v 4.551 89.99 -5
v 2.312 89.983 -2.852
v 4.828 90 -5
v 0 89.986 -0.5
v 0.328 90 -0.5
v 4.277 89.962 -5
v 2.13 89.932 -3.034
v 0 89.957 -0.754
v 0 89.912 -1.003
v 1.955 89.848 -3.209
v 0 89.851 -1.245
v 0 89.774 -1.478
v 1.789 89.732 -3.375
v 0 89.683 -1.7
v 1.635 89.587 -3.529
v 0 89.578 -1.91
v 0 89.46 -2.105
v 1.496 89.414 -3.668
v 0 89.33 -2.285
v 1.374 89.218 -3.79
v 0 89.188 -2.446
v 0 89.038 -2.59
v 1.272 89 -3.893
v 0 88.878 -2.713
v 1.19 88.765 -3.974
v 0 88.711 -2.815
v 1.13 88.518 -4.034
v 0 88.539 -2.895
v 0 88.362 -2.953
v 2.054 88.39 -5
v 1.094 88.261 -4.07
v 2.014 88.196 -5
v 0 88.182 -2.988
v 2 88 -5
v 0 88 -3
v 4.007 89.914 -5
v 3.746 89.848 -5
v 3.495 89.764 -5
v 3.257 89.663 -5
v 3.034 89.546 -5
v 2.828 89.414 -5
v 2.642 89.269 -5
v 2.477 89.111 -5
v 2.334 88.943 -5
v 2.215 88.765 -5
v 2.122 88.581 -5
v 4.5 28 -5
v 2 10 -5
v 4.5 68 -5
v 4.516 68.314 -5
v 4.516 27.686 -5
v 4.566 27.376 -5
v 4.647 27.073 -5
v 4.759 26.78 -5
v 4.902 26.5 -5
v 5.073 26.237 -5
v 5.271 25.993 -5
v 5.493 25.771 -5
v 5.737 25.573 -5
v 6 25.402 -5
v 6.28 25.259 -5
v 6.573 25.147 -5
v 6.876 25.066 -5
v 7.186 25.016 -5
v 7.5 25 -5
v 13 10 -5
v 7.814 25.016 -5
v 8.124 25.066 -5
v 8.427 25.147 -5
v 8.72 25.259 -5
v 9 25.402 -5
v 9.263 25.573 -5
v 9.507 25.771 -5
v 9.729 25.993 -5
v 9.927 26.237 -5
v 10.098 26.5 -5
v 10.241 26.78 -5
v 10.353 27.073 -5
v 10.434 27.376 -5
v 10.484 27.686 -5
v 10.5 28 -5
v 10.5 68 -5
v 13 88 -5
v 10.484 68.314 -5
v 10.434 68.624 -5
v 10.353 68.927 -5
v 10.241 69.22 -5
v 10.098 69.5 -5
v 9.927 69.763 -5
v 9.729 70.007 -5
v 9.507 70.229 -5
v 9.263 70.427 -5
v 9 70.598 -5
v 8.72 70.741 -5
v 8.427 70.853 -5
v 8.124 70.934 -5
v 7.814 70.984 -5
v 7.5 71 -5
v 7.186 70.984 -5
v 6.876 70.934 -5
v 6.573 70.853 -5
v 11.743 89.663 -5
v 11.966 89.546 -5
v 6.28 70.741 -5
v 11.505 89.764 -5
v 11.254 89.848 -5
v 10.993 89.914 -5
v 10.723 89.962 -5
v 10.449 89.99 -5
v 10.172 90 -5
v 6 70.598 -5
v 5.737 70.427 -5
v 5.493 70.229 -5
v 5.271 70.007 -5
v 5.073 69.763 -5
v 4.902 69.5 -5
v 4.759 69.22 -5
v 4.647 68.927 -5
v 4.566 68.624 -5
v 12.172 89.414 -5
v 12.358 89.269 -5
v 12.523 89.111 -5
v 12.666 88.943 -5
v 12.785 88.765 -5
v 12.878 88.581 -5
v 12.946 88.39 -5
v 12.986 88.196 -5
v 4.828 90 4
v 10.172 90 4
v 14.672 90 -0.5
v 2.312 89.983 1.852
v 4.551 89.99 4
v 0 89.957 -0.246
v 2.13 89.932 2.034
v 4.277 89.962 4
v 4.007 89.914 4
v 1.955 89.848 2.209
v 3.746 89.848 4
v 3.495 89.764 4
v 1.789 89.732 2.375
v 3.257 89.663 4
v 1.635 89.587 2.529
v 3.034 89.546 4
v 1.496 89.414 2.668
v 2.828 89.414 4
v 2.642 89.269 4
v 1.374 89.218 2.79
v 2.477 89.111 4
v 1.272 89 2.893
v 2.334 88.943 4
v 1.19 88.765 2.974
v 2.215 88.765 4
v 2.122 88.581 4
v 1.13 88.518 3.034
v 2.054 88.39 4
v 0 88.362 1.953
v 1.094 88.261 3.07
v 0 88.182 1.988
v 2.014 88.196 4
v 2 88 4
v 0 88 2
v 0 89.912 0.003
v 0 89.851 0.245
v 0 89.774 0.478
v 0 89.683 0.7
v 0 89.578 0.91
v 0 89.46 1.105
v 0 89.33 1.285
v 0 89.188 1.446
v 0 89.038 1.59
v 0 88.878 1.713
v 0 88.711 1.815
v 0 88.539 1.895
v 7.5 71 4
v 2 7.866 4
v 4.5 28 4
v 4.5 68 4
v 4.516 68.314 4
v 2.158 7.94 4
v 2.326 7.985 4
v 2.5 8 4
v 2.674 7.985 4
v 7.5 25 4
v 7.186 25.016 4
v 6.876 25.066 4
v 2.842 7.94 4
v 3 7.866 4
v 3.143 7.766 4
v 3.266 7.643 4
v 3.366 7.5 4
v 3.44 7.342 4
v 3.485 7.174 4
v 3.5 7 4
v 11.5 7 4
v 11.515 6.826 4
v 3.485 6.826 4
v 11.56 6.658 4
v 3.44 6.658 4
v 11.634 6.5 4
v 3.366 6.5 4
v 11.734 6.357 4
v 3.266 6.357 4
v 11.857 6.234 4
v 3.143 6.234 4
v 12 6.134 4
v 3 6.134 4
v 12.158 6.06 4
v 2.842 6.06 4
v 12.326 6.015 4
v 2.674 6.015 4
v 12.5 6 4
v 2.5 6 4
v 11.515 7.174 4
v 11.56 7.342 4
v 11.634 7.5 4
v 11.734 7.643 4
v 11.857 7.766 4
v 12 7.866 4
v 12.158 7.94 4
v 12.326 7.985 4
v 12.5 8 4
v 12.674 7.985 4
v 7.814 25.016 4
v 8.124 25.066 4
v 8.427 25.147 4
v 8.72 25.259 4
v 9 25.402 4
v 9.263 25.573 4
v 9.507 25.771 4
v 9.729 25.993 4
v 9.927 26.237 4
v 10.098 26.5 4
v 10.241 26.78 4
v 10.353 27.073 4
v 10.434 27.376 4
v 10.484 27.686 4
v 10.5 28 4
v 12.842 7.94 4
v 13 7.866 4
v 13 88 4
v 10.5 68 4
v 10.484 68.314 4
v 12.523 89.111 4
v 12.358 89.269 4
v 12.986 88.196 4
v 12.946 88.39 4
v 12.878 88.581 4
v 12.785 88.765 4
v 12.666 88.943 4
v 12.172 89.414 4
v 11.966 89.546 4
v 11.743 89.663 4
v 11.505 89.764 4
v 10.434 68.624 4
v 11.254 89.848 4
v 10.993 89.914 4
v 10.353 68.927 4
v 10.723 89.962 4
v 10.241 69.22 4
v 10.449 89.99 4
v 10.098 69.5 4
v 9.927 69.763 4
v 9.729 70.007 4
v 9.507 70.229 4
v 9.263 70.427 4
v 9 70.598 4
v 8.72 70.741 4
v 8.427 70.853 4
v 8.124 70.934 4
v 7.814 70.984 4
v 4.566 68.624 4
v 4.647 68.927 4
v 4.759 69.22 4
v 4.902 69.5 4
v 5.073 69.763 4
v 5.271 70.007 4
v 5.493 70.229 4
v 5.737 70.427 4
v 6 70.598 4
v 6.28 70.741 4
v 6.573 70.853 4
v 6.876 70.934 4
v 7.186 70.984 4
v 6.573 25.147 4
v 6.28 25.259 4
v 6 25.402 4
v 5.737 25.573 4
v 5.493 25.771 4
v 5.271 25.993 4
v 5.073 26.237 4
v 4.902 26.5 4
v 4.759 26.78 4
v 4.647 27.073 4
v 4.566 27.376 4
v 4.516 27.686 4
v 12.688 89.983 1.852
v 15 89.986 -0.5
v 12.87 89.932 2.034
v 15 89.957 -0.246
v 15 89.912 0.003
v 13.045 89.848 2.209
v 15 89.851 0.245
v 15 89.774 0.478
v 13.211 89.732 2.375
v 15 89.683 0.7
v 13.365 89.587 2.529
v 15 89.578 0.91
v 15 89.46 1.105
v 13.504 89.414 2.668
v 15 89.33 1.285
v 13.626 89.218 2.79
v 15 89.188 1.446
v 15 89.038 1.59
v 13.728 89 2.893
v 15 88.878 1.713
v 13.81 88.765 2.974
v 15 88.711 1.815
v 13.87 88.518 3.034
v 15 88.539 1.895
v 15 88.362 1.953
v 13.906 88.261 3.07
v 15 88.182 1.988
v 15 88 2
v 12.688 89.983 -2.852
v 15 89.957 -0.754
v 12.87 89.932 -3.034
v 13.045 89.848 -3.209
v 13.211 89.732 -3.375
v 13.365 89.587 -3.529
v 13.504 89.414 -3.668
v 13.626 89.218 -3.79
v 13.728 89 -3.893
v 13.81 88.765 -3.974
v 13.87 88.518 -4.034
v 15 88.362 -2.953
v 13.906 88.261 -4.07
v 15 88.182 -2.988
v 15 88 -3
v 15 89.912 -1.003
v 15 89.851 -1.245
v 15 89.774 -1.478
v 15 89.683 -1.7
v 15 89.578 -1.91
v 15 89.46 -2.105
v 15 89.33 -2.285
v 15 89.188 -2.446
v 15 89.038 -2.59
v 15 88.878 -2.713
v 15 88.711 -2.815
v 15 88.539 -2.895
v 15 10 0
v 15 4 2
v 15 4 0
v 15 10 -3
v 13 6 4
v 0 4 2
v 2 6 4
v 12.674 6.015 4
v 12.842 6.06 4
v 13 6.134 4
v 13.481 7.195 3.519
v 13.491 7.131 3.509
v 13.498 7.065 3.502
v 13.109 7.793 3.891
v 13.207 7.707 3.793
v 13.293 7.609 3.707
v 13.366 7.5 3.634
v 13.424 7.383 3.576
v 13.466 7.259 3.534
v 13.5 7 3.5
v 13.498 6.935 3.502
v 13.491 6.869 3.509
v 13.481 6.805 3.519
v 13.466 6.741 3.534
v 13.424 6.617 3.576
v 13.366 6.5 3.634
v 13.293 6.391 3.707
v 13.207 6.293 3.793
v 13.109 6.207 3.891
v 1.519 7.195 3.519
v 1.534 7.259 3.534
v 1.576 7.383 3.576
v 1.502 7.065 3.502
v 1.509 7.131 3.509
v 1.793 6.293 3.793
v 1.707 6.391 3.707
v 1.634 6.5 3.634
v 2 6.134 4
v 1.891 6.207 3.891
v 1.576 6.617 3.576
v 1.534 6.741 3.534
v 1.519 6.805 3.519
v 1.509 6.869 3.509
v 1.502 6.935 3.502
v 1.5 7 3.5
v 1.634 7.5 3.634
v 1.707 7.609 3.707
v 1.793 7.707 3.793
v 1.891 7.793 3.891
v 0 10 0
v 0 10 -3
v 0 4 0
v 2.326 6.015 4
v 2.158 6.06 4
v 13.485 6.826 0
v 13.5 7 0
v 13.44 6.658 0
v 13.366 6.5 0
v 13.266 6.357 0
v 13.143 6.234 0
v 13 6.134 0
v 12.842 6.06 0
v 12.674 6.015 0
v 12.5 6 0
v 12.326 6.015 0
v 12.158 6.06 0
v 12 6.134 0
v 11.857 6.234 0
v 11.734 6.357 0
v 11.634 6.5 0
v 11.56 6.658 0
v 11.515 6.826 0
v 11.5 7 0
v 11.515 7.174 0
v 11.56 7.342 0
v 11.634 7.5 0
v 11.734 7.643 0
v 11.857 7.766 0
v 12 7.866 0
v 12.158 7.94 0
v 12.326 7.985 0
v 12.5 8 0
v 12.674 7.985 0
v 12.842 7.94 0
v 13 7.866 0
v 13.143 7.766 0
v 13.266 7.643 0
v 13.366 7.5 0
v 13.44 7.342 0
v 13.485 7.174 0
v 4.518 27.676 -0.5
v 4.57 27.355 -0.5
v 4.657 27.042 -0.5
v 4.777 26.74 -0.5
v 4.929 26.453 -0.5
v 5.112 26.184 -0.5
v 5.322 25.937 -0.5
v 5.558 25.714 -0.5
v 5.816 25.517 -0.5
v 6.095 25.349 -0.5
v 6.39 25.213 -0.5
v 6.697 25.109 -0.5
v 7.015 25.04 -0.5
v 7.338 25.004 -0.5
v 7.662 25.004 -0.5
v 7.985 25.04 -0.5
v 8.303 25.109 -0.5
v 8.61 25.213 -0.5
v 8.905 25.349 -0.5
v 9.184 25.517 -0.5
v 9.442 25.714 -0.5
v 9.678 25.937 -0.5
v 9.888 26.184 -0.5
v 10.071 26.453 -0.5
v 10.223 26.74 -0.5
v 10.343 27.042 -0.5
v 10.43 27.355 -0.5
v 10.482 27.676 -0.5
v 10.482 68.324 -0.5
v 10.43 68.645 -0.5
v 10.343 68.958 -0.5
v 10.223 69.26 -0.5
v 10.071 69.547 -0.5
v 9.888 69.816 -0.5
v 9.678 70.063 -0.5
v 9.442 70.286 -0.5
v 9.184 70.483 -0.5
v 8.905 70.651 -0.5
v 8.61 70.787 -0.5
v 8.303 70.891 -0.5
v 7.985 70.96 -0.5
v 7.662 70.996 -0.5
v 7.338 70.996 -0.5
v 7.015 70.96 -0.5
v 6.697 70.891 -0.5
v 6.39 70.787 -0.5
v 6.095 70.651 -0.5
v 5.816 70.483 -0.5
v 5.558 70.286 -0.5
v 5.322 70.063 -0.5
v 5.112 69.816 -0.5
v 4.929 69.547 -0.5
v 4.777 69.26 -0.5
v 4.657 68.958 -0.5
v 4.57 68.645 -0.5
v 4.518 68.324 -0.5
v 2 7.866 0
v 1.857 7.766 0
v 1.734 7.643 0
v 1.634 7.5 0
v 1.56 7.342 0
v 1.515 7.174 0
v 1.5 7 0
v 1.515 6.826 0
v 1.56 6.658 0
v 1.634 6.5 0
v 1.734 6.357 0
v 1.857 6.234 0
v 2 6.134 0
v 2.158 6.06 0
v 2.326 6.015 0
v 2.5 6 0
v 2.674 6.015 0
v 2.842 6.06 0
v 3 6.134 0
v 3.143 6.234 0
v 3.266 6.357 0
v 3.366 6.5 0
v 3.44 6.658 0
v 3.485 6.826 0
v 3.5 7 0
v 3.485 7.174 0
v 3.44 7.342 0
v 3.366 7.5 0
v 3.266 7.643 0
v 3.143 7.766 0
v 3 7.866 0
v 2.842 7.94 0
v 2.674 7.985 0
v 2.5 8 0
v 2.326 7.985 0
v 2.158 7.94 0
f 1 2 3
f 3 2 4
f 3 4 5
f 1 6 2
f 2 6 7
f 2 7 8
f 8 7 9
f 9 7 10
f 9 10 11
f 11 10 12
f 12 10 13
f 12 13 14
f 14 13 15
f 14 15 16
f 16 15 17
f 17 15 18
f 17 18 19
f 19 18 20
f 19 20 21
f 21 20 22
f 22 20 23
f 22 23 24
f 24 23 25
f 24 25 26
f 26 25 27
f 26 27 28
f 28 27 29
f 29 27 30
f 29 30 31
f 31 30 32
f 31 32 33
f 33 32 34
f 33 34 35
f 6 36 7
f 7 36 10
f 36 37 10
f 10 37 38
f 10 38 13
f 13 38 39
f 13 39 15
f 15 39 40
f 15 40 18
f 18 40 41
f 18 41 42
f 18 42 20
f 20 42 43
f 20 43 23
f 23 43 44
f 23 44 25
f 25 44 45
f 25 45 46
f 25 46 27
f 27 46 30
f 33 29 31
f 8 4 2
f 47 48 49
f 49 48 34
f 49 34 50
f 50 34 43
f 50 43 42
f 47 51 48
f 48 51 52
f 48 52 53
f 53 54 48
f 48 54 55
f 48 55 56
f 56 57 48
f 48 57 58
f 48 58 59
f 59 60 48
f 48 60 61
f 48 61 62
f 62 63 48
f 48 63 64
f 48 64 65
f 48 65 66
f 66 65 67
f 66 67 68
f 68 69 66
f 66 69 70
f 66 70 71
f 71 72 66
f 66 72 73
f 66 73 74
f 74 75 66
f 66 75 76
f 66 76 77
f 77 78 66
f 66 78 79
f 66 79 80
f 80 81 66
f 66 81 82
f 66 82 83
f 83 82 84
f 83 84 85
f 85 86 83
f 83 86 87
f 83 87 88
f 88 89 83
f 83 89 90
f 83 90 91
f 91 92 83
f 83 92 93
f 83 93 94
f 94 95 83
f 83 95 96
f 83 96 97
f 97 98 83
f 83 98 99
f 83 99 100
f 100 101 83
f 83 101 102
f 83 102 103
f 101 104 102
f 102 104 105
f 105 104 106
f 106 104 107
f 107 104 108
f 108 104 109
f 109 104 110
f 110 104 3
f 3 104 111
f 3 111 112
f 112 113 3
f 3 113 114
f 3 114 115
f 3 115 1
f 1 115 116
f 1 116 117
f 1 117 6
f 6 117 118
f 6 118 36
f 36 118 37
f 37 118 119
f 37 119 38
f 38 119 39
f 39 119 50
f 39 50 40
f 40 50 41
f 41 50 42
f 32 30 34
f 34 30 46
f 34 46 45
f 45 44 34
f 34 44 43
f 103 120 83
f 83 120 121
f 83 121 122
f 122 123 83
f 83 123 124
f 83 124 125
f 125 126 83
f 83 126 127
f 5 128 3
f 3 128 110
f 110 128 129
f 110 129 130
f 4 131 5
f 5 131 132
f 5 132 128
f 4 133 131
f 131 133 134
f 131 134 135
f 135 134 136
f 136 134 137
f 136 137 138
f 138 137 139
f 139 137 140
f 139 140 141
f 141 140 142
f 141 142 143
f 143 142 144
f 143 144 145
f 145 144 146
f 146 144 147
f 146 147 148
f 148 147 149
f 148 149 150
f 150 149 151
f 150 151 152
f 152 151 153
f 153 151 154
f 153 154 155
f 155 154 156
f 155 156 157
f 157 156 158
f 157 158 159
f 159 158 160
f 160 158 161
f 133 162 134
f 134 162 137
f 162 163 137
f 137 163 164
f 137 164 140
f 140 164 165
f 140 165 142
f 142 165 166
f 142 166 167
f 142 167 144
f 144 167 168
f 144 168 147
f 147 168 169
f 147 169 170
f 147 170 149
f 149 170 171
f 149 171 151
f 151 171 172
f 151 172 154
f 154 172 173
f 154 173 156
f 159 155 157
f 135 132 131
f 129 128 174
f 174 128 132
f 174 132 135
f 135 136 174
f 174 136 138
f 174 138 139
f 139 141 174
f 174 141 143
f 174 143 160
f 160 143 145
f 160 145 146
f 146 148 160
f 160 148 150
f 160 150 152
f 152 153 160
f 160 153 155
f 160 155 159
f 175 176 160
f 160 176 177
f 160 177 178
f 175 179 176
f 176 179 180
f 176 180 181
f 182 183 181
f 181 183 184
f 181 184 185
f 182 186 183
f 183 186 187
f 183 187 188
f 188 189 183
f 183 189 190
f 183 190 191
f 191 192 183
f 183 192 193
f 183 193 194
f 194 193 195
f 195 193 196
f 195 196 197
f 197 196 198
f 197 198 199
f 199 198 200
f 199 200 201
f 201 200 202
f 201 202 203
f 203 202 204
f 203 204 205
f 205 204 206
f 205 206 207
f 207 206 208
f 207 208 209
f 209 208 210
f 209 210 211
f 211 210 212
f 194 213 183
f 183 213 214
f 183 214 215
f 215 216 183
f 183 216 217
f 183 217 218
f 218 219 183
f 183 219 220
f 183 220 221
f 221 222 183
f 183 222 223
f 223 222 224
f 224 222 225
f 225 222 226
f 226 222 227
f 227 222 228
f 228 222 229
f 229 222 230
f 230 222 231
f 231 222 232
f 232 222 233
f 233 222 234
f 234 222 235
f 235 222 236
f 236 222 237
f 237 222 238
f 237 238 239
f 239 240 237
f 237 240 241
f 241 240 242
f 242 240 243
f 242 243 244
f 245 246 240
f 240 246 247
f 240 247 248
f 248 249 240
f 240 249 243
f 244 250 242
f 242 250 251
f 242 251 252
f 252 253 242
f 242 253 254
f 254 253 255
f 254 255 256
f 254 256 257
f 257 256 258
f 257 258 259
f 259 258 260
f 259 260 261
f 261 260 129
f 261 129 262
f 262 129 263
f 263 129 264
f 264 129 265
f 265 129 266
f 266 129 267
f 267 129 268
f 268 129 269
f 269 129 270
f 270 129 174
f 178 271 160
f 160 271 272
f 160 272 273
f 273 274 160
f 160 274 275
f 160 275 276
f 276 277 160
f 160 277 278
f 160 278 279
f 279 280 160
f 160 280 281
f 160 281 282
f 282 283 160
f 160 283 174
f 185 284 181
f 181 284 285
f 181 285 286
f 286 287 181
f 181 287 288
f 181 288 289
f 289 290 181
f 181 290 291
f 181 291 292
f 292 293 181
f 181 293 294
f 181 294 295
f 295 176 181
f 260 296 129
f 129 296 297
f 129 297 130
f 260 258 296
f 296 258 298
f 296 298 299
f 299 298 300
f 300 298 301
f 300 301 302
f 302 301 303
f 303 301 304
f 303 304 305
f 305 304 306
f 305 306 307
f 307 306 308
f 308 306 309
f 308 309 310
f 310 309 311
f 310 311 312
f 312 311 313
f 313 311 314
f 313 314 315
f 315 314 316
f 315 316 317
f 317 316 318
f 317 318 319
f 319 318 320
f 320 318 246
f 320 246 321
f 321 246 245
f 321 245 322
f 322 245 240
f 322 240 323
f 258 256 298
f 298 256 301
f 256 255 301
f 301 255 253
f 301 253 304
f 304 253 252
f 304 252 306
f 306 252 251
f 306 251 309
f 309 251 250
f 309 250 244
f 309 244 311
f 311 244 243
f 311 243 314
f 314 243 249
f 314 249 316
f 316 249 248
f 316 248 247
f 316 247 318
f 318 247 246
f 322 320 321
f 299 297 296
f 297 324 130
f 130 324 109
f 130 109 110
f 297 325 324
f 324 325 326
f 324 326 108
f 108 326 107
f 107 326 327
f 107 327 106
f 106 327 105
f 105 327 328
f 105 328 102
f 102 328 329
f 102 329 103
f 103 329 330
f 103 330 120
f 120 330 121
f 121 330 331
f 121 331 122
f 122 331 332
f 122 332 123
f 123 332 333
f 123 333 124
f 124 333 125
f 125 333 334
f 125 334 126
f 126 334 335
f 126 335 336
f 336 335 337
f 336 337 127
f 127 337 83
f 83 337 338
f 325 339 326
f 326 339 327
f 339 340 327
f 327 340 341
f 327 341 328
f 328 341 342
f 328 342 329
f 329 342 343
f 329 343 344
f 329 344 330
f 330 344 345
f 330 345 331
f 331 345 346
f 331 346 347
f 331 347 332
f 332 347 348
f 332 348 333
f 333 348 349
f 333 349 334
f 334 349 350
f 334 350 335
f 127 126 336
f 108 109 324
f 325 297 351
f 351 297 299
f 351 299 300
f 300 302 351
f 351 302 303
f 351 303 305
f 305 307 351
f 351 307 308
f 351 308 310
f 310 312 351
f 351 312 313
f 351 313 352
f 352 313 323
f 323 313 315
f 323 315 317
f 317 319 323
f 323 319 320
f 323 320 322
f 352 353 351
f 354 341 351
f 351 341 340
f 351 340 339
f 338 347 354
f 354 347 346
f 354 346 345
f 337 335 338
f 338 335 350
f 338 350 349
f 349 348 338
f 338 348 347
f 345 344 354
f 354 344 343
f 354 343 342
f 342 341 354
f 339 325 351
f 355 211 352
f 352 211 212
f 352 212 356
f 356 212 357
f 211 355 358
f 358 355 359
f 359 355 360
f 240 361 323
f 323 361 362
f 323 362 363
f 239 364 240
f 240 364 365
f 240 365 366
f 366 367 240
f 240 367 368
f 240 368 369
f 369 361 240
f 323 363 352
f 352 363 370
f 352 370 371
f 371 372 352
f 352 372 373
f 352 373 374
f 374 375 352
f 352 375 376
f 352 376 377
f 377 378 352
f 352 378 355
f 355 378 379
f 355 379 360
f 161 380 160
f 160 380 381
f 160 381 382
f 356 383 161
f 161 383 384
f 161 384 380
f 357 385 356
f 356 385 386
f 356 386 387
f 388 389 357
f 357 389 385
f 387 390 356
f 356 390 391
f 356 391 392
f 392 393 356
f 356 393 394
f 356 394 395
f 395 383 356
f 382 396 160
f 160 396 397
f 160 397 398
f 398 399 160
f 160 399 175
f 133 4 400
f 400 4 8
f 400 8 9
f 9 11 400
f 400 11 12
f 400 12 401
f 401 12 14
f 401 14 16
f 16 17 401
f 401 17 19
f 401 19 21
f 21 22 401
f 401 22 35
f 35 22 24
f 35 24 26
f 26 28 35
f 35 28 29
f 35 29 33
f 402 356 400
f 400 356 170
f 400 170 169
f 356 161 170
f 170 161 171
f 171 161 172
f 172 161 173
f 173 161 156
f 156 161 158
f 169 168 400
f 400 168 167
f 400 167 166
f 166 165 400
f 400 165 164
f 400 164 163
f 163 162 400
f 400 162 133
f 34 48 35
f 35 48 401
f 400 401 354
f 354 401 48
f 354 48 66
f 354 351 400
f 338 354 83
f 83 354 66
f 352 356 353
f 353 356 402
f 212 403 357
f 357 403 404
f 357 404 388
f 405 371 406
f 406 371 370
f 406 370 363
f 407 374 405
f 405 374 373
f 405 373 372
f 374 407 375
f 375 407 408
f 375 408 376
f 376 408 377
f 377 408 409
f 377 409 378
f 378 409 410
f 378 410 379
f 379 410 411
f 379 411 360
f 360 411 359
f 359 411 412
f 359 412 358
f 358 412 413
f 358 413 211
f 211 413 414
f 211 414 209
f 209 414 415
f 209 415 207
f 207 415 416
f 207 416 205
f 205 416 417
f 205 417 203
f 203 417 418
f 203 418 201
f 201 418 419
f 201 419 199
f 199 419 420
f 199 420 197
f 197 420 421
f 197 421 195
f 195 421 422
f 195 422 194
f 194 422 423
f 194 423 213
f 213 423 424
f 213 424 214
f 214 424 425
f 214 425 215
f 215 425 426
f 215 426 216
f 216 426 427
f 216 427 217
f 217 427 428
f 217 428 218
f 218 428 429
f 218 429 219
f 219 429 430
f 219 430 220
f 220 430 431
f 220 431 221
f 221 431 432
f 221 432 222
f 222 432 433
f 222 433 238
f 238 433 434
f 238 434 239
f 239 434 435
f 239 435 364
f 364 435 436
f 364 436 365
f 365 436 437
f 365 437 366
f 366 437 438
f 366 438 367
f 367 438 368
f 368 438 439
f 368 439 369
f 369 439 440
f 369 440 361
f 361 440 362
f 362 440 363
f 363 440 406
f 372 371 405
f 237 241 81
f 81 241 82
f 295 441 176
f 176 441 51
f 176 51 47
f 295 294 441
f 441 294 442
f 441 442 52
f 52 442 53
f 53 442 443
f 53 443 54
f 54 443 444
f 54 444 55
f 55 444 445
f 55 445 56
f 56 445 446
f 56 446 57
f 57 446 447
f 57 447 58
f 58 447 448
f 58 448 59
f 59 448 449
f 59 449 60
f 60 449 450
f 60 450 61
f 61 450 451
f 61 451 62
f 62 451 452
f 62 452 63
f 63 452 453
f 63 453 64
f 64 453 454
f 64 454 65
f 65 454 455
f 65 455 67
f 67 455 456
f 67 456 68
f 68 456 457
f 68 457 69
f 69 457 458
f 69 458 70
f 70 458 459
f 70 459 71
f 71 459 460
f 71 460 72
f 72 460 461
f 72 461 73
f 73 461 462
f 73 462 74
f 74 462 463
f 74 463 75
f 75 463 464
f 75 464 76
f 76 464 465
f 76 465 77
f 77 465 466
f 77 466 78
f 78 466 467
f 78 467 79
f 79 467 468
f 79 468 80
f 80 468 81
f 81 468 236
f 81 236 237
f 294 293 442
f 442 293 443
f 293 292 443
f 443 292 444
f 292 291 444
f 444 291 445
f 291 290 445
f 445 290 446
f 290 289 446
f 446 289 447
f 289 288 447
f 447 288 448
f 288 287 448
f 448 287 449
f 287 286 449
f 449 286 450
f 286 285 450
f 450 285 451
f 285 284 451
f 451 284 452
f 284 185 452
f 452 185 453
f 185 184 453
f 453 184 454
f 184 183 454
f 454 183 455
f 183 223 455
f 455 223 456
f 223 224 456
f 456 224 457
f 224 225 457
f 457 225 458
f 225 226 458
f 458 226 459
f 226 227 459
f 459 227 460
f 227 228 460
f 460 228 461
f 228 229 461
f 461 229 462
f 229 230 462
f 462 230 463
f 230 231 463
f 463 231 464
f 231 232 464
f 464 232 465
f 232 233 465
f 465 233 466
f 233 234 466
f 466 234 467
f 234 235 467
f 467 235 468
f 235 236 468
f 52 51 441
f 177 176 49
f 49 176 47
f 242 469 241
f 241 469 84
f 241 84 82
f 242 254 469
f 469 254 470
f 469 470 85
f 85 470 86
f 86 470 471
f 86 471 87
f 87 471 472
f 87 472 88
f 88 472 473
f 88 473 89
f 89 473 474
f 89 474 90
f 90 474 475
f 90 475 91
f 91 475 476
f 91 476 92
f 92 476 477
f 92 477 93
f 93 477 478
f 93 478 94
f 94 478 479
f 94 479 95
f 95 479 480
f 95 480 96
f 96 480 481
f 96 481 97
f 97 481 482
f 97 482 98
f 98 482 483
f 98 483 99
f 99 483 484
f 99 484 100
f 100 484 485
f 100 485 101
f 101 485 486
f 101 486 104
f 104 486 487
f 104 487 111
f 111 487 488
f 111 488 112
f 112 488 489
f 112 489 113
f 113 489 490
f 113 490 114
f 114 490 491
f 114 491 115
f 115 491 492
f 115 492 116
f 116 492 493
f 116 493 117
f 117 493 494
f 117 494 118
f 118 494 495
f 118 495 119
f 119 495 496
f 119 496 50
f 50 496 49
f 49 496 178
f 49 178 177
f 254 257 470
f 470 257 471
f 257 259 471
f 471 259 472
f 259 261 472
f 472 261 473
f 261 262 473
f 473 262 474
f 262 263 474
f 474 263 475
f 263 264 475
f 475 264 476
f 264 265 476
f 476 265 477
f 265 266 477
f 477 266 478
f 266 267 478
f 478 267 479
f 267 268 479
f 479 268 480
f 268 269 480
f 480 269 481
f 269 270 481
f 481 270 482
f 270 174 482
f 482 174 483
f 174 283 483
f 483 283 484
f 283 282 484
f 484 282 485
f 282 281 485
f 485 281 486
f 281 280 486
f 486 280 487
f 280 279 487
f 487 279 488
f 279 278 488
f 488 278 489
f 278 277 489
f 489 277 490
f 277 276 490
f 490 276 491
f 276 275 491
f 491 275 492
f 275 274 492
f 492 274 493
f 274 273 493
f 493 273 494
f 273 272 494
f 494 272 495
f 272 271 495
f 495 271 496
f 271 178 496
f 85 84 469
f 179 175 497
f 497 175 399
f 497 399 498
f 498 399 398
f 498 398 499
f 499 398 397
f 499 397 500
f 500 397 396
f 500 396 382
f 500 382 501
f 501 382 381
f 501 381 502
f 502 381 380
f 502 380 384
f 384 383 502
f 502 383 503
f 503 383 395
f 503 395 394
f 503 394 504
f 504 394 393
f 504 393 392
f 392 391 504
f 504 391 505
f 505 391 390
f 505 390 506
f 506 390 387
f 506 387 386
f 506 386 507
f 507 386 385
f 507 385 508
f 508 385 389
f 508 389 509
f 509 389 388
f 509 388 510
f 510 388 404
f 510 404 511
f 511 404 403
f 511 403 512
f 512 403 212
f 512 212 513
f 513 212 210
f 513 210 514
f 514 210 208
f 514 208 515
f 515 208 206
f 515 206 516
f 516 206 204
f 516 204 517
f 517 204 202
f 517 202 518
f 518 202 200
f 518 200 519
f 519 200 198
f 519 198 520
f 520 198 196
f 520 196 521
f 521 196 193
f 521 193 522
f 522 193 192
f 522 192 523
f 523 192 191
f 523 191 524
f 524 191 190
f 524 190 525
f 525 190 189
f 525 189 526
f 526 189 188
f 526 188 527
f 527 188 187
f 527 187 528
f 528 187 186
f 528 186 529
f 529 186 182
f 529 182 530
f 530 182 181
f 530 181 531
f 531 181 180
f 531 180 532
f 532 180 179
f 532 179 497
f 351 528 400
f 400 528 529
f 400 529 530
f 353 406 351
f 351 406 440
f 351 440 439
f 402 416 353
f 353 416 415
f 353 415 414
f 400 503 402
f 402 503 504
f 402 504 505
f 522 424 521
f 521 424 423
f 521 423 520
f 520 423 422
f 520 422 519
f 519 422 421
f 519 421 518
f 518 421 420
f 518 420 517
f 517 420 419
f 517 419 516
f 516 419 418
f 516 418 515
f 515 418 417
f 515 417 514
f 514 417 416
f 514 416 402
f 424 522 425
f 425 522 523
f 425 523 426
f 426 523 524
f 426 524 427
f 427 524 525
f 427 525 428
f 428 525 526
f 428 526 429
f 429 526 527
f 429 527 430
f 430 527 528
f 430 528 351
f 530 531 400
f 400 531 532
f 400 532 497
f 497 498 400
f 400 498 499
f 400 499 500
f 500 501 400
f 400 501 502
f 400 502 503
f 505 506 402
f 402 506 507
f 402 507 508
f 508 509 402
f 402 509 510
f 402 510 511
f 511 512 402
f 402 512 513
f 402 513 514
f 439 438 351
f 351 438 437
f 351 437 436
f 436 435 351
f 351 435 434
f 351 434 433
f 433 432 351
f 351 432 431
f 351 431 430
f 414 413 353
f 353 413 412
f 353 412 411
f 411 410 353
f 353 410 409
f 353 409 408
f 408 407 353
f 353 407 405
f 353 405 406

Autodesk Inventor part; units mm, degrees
ref_plane "YZ Plane" through (0, 0, 0) normal (1, 0, 0) x (0, 1, 0)
ref_plane "XZ Plane" through (0, 0, 0) normal (0, 1, 0) x (-1, 0, 0)
ref_plane "XY Plane" through (0, 0, 0) normal (0, 0, 1) x (1, 0, 0)
sketch "Sketch1" plane through (0, 0, 0) normal (0, 0, 1) x (1, 0, 0)
  spline S0 degree 3 poles (5, 2.8134) (4.7282, 2.7718) (4.4577, 2.7171) (3.9725, 2.5829) (3.7572, 2.5096) (3.2649, 2.2994) (2.9924, 2.1483) (2.5895, 1.8431) (2.4453, 1.712) (2.3168, 1.5682) (2.1311, 1.3604) (1.976, 1.1232) (1.7525, 0.5925) (1.6905, 0.2977) (1.6905, 0) knots 0 0 0 0 0.174284 0.174284 0.317468 0.317468 0.513399 0.513399 0.635856 0.635856 0.635856 0.812785 0.812785 1 1 1 1
  line L0 (5, 2.8134) -> (5, 10)
  line L1 (0, 10) -> (5, 10)
  line L2 (0, 2.607) -> (0, 10)
  spline S1 degree 3 poles (1.5054, -1.0718) (1.0443, -0.6134) (0.6771, -0.0703) (0.2854, 0.8445) (0.1821, 1.1739) (0.0367, 1.8715) (0, 2.2339) (0, 2.607) knots 0 0 0 0 0.47732 0.47732 0.730106 0.730106 1 1 1 1
  spline S2 degree 3 poles (1.6905, -1.2645) (1.6303, -1.1989) (1.5686, -1.1346) (1.5054, -1.0718) knots 0 0 0 0 1 1 1 1
  line L3 (1.6905, 0) -> (1.6905, -1.2645)
  circle A0 centre (2.5, 7) radius 1
  circle A1 centre (12.5, 7) radius 1
  spline S3 degree 3 poles (13.3095, 0) (13.3095, 0.2448) (13.2668, 0.4921) (13.0809, 1.0308) (12.9041, 1.3201) (12.6871, 1.5639) (12.5591, 1.7077) (12.4154, 1.8388) (12.0138, 2.1444) (11.7421, 2.2958) (11.2512, 2.5065) (11.0368, 2.5799) (10.5491, 2.7158) (10.2752, 2.7712) (10, 2.8134) knots 0 0 0 0 0.154789 0.154789 0.362213 0.362213 0.362213 0.4846 0.4846 0.68042 0.68042 0.823311 0.823311 1 1 1 1
  line L4 (13.3095, -1.2645) -> (13.3095, 0)
  spline S4 degree 3 poles (13.3095, -1.2645) (13.3697, -1.1989) (13.4314, -1.1346) (13.4946, -1.0718) knots 0 0 0 0 1 1 1 1
  spline S5 degree 3 poles (15, 2.607) (15, 2.4473) (14.9933, 2.2901) (14.9258, 1.5152) (14.7659, 0.9156) (14.2513, -0.1742) (13.9111, -0.6578) (13.4946, -1.0718) knots 0 0 0 0 0.115959 0.115959 0.56908 0.56908 1 1 1 1
  line L5 (15, 2.607) -> (15, 10)
  line L6 (10, 10) -> (15, 10)
  line L7 (10, 10) -> (10, 2.8134)
  line L8 (0, 10) -> (15, 10)
  line L9 (15, 10) -> (15, 4)
  line L10 (15, 4) -> (0, 4)
  line L11 (0, 4) -> (0, 10)
  point P0 (0, 0)
  dimension "d0" = 15
  dimension "d1" = 6
extrude "Extrusion1" add sketch "Sketch1" along normal blind 4 contours L10 L2 L1 L0 | L0 L8 L7 L10 | L7 L6 L5 L10
sketch "Sketch2" plane through (0, 10, 0) normal (0, 1, 0) x (1, 0, 0)
  line L0 (15, 0) -> (0, 0) projected
  line L1 (0, 0) -> (0, -4) projected
  line L2 (15, -4) -> (0, -4) projected
  line L3 (15, 0) -> (15, -4) projected
  line L4 (15, -4) -> (0, -4) projected
  line L5 (0, -4) -> (15, -4)
  line L6 (15, -4) -> (15, 5)
  line L7 (15, 5) -> (0, 5)
  line L8 (0, 5) -> (0, -4)
  dimension "d4" = 15
  dimension "d5" = 9
extrude "Extrusion2" add sketch "Sketch2" along normal blind 80
sketch "Sketch3" plane through (15, 10, -5) normal (0, 0, -1) x (-1, 0, 0)
  line L0 (0, 0) -> (15, 0) projected
  line L1 (15, 0) -> (15, 80) projected
  line L2 (0, 80) -> (15, 80) projected
  line L3 (0, 0) -> (0, 80) projected
  line L4 (7.5, 80) -> (7.5, 38)
  line L5 (7.5, 18) -> (7.5, 58) construction
  line L6 (10.5, 18) -> (10.5, 58)
  line L7 (4.5, 58) -> (4.5, 18)
  arc A0 (4.5, 18) -> (10.5, 18) centre (7.5, 18) ccw
  arc A1 (10.5, 58) -> (4.5, 58) centre (7.5, 58) ccw
  point P0 (15, -10)
  dimension "d8" = 42
  dimension "d9" = 20
  dimension "d10" = 6
extrude "Extrusion3" cut sketch "Sketch3" against normal blind 80 contours A0 L7 A1 L6
chamfer "Chamfer1" distance 2 angle 45 4 edges at (15, 47, 4) (15, 50, -5) (0, 50, -5) (0, 47, 4)
chamfer "Chamfer2" distance 2 angle 45 1 edges at (7.5, 4, 4)
fillet "Fillet1" radius 2 4 edges at (1, 90, -4) (14, 90, -4) (14, 90, 3) (1, 90, 3)
properties part number "pen_2"
